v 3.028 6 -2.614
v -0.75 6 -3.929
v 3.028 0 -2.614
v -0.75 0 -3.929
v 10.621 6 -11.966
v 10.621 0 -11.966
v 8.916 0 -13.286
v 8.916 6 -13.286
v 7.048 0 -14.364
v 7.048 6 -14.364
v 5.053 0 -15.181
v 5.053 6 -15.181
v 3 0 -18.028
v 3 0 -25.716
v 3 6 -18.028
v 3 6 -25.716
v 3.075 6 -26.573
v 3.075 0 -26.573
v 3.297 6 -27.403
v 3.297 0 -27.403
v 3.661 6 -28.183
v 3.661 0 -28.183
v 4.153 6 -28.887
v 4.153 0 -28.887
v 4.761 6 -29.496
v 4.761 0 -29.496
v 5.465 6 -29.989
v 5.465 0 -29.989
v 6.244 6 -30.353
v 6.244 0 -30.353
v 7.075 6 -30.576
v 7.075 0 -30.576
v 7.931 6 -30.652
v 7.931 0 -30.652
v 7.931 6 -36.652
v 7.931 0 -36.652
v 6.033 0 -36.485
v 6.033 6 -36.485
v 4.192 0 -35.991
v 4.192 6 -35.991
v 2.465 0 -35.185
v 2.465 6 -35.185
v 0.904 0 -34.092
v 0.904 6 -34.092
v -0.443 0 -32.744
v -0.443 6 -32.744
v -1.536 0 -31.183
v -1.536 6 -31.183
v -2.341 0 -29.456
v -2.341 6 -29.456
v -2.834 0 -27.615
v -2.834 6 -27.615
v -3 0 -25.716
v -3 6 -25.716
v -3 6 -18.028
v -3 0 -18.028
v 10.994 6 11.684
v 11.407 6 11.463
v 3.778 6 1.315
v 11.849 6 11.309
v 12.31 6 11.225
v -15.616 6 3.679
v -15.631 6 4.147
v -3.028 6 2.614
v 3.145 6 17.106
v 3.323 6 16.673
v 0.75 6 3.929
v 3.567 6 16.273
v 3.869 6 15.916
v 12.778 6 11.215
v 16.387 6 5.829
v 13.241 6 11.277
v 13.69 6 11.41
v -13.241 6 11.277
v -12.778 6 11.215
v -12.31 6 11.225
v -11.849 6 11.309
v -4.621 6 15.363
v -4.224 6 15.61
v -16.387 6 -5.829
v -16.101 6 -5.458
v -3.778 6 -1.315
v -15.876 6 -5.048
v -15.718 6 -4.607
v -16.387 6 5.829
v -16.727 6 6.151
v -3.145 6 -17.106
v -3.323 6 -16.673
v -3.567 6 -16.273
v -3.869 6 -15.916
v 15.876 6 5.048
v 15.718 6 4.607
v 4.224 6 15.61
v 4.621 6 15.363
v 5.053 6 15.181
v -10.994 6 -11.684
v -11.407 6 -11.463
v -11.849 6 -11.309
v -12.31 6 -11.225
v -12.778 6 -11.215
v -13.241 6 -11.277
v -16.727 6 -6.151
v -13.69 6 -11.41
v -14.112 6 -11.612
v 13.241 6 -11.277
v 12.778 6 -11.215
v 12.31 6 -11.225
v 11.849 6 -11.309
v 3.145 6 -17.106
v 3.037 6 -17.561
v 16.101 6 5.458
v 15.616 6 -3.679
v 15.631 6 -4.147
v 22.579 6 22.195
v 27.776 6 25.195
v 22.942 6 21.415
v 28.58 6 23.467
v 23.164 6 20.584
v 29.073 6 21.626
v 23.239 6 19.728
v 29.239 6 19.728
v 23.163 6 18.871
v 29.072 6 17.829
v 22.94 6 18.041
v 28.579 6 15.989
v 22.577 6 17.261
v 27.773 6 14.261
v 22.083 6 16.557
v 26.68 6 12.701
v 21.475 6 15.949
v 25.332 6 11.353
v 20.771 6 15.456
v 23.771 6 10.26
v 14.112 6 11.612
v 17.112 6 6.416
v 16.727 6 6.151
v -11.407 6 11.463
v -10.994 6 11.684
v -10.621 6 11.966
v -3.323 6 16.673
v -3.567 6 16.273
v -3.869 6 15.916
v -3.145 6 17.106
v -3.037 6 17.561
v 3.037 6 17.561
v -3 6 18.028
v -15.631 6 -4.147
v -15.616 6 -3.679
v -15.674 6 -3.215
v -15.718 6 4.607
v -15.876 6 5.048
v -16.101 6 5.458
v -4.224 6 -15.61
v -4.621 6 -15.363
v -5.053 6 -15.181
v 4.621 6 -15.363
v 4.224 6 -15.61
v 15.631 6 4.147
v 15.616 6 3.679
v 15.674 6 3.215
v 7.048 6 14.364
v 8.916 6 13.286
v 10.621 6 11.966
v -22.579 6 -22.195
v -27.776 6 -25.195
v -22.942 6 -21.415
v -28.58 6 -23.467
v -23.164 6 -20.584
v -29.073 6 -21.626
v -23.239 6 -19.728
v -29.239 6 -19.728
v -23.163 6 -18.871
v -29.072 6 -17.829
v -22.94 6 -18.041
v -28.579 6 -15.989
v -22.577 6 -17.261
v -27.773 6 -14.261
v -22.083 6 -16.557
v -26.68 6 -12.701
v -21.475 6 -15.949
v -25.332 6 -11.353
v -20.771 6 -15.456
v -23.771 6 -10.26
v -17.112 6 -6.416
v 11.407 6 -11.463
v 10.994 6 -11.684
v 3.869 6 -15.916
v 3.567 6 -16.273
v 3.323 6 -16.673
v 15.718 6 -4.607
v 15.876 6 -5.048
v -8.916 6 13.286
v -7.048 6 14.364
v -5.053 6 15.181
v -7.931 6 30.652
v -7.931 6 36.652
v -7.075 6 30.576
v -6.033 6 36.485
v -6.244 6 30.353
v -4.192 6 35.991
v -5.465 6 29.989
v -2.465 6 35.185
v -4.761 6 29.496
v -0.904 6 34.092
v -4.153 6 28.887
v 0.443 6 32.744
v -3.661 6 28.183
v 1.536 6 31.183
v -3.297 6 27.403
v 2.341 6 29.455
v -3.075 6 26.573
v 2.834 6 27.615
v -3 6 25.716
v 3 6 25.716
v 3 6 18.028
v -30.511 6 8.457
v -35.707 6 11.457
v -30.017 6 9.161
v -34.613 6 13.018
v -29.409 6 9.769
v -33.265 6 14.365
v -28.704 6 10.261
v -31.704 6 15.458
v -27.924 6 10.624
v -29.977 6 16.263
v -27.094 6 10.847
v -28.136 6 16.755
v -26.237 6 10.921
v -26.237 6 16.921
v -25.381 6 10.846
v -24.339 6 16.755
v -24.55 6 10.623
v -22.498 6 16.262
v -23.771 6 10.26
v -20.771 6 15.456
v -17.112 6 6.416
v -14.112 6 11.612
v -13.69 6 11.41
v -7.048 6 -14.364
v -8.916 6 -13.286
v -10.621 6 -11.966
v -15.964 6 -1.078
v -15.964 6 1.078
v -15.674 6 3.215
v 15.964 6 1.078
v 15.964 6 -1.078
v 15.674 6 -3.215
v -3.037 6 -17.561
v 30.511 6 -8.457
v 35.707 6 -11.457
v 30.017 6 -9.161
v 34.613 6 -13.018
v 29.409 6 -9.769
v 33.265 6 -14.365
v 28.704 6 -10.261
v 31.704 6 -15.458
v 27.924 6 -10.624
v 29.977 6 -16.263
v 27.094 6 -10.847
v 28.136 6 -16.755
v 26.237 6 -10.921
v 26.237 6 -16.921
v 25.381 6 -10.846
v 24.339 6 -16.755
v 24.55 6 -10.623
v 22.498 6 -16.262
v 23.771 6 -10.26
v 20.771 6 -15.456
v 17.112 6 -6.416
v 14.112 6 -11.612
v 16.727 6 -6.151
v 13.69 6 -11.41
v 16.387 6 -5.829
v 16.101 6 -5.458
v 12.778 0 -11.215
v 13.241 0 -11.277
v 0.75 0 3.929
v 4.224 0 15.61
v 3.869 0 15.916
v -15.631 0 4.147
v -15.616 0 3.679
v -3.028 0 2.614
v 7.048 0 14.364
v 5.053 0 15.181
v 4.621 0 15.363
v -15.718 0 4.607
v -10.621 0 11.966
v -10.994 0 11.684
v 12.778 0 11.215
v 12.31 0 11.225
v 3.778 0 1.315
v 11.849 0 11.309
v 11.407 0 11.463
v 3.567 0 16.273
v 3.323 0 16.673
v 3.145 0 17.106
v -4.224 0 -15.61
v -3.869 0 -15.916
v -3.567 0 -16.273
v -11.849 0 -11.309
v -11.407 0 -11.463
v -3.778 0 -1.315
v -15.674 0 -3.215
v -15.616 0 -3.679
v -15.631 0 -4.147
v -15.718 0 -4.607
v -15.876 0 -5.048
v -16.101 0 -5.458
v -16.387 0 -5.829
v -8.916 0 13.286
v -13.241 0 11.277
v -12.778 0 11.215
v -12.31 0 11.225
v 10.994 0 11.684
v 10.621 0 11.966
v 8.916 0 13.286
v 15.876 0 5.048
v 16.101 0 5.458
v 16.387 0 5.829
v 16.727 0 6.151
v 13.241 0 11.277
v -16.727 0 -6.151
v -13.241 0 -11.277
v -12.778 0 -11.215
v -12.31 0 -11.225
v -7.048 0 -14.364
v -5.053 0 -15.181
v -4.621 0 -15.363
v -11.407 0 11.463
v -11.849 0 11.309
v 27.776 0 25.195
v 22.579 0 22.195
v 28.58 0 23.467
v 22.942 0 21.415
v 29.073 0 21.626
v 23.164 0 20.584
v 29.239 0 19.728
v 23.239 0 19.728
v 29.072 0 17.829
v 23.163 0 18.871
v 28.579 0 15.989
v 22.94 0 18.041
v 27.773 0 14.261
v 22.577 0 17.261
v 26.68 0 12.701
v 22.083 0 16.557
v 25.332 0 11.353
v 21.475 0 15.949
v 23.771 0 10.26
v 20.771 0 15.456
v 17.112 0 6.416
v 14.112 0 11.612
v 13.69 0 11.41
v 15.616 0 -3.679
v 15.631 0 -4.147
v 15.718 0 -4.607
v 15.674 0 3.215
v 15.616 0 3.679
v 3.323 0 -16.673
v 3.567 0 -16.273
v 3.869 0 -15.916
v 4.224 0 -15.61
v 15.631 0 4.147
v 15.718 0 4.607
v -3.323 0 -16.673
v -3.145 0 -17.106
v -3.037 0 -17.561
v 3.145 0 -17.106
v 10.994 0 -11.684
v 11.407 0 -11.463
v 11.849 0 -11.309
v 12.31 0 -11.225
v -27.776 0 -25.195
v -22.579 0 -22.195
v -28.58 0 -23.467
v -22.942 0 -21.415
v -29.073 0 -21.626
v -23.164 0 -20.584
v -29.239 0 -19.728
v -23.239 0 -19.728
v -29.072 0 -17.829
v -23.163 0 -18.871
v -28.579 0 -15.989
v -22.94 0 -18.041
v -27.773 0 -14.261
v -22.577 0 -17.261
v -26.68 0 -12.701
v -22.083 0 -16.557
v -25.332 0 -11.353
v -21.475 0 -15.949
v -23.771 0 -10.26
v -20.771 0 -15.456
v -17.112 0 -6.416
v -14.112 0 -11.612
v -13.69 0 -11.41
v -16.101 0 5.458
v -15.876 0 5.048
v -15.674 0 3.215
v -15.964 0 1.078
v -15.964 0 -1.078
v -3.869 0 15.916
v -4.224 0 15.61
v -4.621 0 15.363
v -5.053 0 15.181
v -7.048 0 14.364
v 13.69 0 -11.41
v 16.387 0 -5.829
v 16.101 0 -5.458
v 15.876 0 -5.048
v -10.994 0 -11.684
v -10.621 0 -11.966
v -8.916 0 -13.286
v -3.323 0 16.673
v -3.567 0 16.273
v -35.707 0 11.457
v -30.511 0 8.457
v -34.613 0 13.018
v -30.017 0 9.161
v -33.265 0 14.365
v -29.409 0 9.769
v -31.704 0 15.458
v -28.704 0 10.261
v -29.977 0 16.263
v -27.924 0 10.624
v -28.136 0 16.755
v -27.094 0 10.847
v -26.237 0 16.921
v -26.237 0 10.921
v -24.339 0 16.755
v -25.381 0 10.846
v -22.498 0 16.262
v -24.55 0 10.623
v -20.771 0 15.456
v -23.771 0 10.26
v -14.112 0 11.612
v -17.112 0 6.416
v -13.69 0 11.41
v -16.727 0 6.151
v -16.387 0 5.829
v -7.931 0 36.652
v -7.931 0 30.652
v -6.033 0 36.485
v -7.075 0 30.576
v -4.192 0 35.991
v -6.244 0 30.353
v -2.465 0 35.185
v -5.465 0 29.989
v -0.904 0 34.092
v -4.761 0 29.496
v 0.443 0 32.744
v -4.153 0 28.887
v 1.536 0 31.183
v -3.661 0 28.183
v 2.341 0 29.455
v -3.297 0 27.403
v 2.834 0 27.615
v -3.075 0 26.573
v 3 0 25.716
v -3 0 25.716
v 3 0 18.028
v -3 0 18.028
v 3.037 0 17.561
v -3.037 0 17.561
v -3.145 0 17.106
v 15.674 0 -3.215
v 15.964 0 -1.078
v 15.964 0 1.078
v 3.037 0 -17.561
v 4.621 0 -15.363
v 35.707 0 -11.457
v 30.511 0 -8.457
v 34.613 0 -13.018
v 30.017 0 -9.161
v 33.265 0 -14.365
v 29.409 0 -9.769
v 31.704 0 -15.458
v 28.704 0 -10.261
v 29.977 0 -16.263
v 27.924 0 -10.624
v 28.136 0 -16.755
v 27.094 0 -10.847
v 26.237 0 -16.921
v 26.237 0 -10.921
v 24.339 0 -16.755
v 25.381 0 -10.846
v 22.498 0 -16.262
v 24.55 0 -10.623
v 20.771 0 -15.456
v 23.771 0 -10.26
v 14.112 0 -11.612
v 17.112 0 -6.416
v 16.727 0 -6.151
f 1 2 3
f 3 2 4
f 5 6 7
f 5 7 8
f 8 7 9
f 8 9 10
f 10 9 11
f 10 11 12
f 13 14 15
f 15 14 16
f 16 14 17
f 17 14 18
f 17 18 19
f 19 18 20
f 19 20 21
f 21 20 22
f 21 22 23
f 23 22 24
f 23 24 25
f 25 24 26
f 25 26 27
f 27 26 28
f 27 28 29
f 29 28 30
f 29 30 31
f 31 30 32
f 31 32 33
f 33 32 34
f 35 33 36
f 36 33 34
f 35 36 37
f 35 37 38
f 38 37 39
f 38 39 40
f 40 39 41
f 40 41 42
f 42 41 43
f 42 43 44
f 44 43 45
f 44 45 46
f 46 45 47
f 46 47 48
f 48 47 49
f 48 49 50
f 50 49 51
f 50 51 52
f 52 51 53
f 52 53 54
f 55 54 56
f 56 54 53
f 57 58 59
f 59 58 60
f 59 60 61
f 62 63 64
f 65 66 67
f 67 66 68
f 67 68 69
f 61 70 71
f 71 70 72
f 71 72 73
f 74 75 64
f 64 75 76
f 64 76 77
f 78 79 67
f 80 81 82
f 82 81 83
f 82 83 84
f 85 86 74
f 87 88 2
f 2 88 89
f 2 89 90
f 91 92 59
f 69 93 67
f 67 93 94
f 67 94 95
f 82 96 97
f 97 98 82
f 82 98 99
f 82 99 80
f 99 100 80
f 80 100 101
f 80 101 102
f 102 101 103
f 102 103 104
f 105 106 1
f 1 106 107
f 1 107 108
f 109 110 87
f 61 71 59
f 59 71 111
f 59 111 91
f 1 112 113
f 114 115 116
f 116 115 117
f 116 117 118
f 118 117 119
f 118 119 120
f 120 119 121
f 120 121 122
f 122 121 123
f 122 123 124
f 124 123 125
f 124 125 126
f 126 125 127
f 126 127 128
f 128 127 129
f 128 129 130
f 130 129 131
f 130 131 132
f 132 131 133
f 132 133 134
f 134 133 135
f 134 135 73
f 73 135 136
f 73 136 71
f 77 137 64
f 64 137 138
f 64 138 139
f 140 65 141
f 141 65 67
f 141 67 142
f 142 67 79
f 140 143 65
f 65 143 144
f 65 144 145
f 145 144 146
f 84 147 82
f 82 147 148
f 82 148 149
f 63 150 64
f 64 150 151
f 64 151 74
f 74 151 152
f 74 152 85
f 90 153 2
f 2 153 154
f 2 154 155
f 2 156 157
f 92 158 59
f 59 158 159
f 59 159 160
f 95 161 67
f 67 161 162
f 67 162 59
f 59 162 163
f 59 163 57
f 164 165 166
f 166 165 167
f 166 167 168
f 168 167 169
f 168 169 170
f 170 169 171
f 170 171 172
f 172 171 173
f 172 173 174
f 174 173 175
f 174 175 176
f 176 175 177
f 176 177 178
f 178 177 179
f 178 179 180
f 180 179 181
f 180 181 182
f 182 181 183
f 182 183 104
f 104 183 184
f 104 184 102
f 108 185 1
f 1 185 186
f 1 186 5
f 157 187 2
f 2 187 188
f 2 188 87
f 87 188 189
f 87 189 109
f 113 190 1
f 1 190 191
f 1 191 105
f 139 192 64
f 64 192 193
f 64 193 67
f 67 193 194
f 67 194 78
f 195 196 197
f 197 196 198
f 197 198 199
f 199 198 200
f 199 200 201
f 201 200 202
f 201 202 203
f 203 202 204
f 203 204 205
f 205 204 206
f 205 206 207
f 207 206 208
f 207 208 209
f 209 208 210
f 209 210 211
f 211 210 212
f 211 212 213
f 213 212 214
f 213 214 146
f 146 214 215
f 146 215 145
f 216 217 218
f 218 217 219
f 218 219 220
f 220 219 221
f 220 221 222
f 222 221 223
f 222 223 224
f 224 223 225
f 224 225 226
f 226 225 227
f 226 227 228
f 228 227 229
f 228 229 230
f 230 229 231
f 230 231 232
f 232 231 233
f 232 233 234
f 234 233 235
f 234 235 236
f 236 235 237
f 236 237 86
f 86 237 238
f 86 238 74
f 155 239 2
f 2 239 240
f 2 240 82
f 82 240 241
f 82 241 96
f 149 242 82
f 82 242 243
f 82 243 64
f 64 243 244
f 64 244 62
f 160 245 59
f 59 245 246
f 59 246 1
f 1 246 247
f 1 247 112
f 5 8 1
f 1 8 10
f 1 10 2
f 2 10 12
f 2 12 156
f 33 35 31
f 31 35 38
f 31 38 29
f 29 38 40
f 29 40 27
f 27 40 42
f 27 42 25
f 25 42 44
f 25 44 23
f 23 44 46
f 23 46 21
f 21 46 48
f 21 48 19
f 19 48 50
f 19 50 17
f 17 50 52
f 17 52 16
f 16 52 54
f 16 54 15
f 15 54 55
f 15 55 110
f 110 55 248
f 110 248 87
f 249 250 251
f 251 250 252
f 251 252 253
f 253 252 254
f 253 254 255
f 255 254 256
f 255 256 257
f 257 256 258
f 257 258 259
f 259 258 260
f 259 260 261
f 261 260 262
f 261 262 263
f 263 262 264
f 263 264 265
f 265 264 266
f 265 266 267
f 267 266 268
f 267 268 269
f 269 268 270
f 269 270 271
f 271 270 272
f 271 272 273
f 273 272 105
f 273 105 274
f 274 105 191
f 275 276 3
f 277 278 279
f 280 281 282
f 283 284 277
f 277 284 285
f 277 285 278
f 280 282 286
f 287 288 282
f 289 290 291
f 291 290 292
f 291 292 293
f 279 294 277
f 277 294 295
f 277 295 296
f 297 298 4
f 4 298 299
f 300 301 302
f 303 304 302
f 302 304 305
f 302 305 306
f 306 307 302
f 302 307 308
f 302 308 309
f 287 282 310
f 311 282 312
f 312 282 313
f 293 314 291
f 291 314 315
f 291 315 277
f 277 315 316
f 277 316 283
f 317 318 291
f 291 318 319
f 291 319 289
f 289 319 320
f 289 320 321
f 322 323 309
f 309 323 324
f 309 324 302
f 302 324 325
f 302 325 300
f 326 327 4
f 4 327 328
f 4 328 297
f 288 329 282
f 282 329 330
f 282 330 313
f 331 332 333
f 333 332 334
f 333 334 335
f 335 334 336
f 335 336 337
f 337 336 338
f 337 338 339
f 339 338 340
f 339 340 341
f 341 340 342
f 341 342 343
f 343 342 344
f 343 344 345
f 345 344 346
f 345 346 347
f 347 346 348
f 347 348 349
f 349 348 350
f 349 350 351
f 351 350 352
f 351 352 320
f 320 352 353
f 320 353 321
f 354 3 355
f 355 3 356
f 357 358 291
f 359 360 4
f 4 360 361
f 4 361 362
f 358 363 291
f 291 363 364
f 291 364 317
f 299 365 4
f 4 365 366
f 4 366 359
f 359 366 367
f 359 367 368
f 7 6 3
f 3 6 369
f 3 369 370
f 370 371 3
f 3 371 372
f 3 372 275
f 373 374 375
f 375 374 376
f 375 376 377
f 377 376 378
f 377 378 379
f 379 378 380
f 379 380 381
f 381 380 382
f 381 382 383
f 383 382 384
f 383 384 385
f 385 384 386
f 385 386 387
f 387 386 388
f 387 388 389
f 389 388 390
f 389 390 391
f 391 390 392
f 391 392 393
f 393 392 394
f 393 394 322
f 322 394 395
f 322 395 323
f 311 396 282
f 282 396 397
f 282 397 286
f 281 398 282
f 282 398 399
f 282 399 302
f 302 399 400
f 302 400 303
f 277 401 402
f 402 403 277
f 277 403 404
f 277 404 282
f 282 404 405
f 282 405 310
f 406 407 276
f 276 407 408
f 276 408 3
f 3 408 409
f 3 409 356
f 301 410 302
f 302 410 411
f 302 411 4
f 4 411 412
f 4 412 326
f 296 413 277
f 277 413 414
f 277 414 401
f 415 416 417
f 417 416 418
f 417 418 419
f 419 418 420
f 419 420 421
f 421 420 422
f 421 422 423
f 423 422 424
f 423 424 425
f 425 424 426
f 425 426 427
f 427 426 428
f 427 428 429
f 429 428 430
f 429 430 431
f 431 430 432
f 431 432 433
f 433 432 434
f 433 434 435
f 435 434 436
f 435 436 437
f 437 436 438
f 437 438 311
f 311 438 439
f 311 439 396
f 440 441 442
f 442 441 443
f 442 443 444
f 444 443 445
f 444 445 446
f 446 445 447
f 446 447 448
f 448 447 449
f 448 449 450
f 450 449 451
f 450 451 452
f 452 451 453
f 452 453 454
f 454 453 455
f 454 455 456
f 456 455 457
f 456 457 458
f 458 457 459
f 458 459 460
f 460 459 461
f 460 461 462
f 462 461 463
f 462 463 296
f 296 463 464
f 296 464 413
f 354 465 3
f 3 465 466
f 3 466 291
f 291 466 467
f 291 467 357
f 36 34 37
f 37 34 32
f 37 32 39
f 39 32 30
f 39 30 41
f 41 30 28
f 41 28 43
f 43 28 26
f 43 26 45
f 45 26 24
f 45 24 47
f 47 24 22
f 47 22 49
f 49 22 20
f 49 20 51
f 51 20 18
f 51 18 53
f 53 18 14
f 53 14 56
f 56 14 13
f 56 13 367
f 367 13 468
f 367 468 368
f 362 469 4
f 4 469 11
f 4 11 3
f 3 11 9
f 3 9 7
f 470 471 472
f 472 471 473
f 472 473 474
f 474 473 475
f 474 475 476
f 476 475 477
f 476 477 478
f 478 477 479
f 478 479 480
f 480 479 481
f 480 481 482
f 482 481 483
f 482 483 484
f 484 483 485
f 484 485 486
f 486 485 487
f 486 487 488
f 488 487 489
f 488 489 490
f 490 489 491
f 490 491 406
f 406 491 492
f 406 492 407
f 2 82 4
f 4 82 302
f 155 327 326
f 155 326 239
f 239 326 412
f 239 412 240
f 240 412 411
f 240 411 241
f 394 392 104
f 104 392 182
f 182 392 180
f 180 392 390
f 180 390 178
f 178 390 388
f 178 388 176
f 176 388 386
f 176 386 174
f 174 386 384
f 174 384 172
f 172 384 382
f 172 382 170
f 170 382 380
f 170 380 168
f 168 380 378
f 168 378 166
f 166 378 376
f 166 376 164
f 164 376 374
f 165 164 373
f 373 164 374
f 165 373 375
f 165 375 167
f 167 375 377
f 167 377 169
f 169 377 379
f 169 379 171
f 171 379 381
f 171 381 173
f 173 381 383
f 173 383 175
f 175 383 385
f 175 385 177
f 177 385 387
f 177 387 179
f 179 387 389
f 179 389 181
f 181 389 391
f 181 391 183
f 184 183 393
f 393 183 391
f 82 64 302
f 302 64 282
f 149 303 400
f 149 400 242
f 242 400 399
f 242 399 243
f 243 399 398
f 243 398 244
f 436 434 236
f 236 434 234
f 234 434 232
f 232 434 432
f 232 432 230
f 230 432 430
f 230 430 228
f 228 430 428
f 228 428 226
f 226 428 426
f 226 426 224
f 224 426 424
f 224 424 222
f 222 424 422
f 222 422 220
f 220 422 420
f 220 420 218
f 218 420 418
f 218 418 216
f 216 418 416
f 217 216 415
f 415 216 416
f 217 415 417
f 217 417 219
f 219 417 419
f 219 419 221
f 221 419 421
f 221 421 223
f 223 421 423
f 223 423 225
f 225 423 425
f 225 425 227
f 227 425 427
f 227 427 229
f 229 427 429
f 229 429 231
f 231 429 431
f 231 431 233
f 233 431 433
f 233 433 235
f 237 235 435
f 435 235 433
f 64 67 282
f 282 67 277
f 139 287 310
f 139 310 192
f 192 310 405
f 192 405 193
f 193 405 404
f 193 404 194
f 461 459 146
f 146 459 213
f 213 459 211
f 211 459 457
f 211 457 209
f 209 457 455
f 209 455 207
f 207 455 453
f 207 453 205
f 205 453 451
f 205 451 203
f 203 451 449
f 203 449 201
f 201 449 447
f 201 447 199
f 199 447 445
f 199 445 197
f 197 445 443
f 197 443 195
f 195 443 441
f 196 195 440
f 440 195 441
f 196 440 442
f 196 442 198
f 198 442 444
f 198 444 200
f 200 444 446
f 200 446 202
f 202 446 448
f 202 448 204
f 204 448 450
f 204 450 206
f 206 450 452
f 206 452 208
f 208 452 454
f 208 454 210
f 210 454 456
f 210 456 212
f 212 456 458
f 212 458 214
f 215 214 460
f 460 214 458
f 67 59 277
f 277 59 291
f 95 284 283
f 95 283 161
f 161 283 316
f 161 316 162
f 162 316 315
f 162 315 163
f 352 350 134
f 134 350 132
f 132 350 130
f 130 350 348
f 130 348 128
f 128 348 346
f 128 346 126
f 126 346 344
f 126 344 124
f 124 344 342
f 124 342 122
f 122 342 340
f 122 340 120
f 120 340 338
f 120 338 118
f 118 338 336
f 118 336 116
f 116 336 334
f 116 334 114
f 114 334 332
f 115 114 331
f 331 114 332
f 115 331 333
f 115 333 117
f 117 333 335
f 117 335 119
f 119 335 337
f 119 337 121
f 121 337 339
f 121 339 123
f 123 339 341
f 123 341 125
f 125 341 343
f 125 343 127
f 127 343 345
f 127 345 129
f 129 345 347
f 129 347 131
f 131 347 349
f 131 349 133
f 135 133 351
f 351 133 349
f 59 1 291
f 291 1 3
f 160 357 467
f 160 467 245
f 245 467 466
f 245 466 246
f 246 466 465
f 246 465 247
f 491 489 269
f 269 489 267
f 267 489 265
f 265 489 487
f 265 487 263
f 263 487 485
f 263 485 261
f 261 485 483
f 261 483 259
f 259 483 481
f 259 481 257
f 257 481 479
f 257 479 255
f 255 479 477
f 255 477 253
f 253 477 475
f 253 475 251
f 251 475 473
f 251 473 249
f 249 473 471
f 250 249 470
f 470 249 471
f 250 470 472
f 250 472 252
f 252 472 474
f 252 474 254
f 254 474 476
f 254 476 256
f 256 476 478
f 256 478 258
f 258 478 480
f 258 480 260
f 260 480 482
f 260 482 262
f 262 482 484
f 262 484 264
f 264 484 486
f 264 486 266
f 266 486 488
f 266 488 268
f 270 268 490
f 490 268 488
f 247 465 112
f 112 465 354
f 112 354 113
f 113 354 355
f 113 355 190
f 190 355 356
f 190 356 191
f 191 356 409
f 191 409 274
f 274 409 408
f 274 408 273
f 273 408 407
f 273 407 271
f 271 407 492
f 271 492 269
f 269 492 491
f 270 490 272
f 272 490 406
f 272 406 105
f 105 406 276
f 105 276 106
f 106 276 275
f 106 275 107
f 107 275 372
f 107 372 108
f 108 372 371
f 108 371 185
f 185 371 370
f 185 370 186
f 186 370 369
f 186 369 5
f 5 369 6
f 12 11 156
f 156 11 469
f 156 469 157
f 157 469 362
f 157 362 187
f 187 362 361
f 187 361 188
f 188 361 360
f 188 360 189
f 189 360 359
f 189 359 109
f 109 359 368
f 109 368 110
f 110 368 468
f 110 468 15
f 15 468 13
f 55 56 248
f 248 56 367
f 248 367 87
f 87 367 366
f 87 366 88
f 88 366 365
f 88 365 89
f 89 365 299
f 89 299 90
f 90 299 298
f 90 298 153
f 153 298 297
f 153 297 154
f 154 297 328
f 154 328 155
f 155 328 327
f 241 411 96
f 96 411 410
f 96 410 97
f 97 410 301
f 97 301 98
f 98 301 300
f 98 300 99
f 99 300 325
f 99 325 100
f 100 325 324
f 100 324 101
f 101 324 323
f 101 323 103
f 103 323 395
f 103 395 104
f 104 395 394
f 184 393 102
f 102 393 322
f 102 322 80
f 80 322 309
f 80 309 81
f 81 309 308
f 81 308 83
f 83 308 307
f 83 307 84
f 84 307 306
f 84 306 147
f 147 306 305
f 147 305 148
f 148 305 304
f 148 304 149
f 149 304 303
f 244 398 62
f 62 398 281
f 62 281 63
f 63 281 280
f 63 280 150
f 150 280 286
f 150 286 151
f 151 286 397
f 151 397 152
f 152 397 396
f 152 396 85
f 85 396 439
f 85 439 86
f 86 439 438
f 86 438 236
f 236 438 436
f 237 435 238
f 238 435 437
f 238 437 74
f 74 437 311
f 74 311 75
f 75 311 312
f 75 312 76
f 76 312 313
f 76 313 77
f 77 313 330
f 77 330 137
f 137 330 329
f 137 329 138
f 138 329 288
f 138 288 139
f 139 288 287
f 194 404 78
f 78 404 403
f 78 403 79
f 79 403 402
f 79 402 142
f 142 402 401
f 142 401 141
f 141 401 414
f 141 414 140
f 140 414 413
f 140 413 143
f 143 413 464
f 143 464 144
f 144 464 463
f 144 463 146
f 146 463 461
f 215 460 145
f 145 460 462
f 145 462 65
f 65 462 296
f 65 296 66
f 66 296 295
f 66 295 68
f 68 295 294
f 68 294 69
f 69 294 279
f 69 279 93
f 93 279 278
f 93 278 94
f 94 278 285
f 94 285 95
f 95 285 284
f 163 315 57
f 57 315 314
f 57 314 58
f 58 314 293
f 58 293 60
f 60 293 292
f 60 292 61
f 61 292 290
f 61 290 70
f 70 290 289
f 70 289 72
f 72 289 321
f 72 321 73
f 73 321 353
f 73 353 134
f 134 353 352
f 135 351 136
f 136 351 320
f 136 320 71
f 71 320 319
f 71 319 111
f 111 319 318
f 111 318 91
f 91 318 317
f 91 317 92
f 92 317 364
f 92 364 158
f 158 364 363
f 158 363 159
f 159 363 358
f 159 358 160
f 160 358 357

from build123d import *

# Parameters (mm, degrees)
EXTRUDE_1_DEPTH          = 6
PATTERN_CIRCULAR_1_COUNT = 6
FILLET_1_R               = 3


with BuildPart() as part:
    # 草图1 → 凸台-拉伸1 (new body)
    with BuildSketch(Plane(origin=(0, 0, 0), x_dir=(1, 0, 0), z_dir=(0, 1, 0))):
        with BuildLine():
            Line((-3, 15.716233646), (-3, 25.716233646))
            ThreePointArc((-3, 25.716233646), (0.201439561, 33.447280184), (7.931262854, 36.651672125))
            Line((7.931262854, 36.651672125), (7.931262854, 30.651671155))
            ThreePointArc((7.931262854, 30.651671155), (4.44408042, 29.204639325), (3, 25.716233646))
            Line((3, 25.716233646), (3, 15.716233646))
            ThreePointArc((3, 15.716233646), (8, 13.856406461), (12.110657589, 10.456193034))
            Line((12.110657589, 10.456193034), (3.027664397, 2.614048259))
            Line((3.027664397, 2.614048259), (-0.75, 3.929058411))
            Line((-0.75, 3.929058411), (-3, 15.716233646))
        make_face()
    extrude_1 = extrude(amount=EXTRUDE_1_DEPTH)

    # 阵列(圆周)1: 凸台-拉伸1 ×6 about axis
    pattern_circular_1_axis = Axis((0, 0, 0), (0, 1, 0))
    for i in range(1, PATTERN_CIRCULAR_1_COUNT):
        add(extrude_1.rotate(pattern_circular_1_axis, i * 360 / PATTERN_CIRCULAR_1_COUNT))

    # 圆角1
    fillet_1_edges = [part.edges().sort_by_distance(p)[0] for p in [
        (-3, 3, -15.716233646),
        (3, 3, -15.716233646),
        (12.110657589, 3, -10.456193034),
        (-12.110657589, 3, -10.456193034),
        (-15.110657589, 3, -5.260040611),
        (-15.110657589, 3, 5.260040611),
        (-12.110657589, 3, 10.456193034),
        (-3, 3, 15.716233646),
        (3, 3, 15.716233646),
        (12.110657589, 3, 10.456193034),
        (15.110657589, 3, 5.260040611),
        (15.110657589, 3, -5.260040611),
    ]]
    fillet(fillet_1_edges, radius=FILLET_1_R)


solid = part.part
